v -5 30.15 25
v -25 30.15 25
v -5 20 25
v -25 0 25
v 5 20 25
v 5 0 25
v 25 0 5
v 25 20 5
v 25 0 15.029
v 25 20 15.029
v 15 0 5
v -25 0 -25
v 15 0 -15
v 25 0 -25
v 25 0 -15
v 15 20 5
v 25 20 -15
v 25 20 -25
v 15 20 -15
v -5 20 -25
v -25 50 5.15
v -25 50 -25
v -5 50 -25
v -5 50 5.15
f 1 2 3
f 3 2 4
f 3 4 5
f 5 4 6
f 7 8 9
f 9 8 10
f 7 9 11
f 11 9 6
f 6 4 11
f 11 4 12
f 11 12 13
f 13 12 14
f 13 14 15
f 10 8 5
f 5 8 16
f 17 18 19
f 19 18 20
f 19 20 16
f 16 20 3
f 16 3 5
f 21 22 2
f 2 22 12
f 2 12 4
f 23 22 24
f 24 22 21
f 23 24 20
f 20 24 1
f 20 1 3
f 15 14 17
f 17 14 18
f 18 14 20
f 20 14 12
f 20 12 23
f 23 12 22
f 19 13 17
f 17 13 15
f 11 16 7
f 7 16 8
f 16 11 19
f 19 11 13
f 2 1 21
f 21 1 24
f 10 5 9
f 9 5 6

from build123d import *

# Parameters (mm, degrees)
SKETCH1_W               = 50
SKETCH1_H               = 50
BOSS_EXTRUDE1_DEPTH     = 50
CUT_EXTRUDE2_DEPTH      = 76
SKETCH4_W               = 20
SKETCH4_H               = 20
CUT_EXTRUDE3_DEPTH      = 10
CUT_EXTRUDE4_DEPTH      = 64.442887702
CUT_EXTRUDE4_DEPTH_BACK = 64.442887702
CUT_EXTRUDE5_DEPTH      = 47.368092477
CUT_EXTRUDE5_DEPTH_BACK = 47.368092477


with BuildPart() as part:
    # Sketch1 → Boss-Extrude1 (new body)
    with BuildSketch(Plane(origin=(0, 0, 0), x_dir=(1, 0, 0), z_dir=(0, 1, 0))):
        Rectangle(SKETCH1_W, SKETCH1_H)
    extrude(amount=BOSS_EXTRUDE1_DEPTH)

    # Sketch3 → Cut-Extrude2 (cut, through all)
    with BuildSketch(Plane.XY.offset(25)):
        Polygon((-5, 50), (-5, 20), (25.055791763, 20), (25, 50), align=None)
    extrude(amount=-CUT_EXTRUDE2_DEPTH, mode=Mode.SUBTRACT)

    # Sketch4 → Cut-Extrude3 (cut)
    with BuildSketch(Plane(origin=(25, 0, 0), x_dir=(0, 0, -1), z_dir=(1, 0, 0))):
        with Locations((5, 10)):
            Rectangle(SKETCH4_W, SKETCH4_H)
    extrude(amount=-CUT_EXTRUDE3_DEPTH, mode=Mode.SUBTRACT)

    # Sketch8 → Cut-Extrude4 (cut, two sides: drawn at the far end of the back side and taken through both)
    with BuildSketch(Plane(origin=(-5, 0, 0), x_dir=(0, 0, -1), z_dir=(1, 0, 0)).offset(-CUT_EXTRUDE4_DEPTH_BACK)):
        Polygon((-114.864472803, -59.71478058), (-25.149692223, 30), (-5, 50.149692223), (84.71478058, 139.864472803), (-94.71478058, 319.294033964), (-294.294033964, 119.71478058), align=None)
    extrude(amount=CUT_EXTRUDE4_DEPTH + CUT_EXTRUDE4_DEPTH_BACK, mode=Mode.SUBTRACT)

    # Sketch9 → Cut-Extrude5 (cut, two sides: drawn at the far end of the back side and taken through both)
    with BuildSketch(Plane(origin=(0, 20, 0), x_dir=(1, 0, 0), z_dir=(0, 1, 0)).offset(-CUT_EXTRUDE5_DEPTH_BACK)):
        Polygon((148.701256003, 46.638963739), (25.059091939, -15), (5, -25), (-118.642164064, -86.638963739), (4.635763413, -333.923291867), (271.97918348, -200.64536439), align=None)
    extrude(amount=CUT_EXTRUDE5_DEPTH + CUT_EXTRUDE5_DEPTH_BACK, mode=Mode.SUBTRACT)


solid = part.part
